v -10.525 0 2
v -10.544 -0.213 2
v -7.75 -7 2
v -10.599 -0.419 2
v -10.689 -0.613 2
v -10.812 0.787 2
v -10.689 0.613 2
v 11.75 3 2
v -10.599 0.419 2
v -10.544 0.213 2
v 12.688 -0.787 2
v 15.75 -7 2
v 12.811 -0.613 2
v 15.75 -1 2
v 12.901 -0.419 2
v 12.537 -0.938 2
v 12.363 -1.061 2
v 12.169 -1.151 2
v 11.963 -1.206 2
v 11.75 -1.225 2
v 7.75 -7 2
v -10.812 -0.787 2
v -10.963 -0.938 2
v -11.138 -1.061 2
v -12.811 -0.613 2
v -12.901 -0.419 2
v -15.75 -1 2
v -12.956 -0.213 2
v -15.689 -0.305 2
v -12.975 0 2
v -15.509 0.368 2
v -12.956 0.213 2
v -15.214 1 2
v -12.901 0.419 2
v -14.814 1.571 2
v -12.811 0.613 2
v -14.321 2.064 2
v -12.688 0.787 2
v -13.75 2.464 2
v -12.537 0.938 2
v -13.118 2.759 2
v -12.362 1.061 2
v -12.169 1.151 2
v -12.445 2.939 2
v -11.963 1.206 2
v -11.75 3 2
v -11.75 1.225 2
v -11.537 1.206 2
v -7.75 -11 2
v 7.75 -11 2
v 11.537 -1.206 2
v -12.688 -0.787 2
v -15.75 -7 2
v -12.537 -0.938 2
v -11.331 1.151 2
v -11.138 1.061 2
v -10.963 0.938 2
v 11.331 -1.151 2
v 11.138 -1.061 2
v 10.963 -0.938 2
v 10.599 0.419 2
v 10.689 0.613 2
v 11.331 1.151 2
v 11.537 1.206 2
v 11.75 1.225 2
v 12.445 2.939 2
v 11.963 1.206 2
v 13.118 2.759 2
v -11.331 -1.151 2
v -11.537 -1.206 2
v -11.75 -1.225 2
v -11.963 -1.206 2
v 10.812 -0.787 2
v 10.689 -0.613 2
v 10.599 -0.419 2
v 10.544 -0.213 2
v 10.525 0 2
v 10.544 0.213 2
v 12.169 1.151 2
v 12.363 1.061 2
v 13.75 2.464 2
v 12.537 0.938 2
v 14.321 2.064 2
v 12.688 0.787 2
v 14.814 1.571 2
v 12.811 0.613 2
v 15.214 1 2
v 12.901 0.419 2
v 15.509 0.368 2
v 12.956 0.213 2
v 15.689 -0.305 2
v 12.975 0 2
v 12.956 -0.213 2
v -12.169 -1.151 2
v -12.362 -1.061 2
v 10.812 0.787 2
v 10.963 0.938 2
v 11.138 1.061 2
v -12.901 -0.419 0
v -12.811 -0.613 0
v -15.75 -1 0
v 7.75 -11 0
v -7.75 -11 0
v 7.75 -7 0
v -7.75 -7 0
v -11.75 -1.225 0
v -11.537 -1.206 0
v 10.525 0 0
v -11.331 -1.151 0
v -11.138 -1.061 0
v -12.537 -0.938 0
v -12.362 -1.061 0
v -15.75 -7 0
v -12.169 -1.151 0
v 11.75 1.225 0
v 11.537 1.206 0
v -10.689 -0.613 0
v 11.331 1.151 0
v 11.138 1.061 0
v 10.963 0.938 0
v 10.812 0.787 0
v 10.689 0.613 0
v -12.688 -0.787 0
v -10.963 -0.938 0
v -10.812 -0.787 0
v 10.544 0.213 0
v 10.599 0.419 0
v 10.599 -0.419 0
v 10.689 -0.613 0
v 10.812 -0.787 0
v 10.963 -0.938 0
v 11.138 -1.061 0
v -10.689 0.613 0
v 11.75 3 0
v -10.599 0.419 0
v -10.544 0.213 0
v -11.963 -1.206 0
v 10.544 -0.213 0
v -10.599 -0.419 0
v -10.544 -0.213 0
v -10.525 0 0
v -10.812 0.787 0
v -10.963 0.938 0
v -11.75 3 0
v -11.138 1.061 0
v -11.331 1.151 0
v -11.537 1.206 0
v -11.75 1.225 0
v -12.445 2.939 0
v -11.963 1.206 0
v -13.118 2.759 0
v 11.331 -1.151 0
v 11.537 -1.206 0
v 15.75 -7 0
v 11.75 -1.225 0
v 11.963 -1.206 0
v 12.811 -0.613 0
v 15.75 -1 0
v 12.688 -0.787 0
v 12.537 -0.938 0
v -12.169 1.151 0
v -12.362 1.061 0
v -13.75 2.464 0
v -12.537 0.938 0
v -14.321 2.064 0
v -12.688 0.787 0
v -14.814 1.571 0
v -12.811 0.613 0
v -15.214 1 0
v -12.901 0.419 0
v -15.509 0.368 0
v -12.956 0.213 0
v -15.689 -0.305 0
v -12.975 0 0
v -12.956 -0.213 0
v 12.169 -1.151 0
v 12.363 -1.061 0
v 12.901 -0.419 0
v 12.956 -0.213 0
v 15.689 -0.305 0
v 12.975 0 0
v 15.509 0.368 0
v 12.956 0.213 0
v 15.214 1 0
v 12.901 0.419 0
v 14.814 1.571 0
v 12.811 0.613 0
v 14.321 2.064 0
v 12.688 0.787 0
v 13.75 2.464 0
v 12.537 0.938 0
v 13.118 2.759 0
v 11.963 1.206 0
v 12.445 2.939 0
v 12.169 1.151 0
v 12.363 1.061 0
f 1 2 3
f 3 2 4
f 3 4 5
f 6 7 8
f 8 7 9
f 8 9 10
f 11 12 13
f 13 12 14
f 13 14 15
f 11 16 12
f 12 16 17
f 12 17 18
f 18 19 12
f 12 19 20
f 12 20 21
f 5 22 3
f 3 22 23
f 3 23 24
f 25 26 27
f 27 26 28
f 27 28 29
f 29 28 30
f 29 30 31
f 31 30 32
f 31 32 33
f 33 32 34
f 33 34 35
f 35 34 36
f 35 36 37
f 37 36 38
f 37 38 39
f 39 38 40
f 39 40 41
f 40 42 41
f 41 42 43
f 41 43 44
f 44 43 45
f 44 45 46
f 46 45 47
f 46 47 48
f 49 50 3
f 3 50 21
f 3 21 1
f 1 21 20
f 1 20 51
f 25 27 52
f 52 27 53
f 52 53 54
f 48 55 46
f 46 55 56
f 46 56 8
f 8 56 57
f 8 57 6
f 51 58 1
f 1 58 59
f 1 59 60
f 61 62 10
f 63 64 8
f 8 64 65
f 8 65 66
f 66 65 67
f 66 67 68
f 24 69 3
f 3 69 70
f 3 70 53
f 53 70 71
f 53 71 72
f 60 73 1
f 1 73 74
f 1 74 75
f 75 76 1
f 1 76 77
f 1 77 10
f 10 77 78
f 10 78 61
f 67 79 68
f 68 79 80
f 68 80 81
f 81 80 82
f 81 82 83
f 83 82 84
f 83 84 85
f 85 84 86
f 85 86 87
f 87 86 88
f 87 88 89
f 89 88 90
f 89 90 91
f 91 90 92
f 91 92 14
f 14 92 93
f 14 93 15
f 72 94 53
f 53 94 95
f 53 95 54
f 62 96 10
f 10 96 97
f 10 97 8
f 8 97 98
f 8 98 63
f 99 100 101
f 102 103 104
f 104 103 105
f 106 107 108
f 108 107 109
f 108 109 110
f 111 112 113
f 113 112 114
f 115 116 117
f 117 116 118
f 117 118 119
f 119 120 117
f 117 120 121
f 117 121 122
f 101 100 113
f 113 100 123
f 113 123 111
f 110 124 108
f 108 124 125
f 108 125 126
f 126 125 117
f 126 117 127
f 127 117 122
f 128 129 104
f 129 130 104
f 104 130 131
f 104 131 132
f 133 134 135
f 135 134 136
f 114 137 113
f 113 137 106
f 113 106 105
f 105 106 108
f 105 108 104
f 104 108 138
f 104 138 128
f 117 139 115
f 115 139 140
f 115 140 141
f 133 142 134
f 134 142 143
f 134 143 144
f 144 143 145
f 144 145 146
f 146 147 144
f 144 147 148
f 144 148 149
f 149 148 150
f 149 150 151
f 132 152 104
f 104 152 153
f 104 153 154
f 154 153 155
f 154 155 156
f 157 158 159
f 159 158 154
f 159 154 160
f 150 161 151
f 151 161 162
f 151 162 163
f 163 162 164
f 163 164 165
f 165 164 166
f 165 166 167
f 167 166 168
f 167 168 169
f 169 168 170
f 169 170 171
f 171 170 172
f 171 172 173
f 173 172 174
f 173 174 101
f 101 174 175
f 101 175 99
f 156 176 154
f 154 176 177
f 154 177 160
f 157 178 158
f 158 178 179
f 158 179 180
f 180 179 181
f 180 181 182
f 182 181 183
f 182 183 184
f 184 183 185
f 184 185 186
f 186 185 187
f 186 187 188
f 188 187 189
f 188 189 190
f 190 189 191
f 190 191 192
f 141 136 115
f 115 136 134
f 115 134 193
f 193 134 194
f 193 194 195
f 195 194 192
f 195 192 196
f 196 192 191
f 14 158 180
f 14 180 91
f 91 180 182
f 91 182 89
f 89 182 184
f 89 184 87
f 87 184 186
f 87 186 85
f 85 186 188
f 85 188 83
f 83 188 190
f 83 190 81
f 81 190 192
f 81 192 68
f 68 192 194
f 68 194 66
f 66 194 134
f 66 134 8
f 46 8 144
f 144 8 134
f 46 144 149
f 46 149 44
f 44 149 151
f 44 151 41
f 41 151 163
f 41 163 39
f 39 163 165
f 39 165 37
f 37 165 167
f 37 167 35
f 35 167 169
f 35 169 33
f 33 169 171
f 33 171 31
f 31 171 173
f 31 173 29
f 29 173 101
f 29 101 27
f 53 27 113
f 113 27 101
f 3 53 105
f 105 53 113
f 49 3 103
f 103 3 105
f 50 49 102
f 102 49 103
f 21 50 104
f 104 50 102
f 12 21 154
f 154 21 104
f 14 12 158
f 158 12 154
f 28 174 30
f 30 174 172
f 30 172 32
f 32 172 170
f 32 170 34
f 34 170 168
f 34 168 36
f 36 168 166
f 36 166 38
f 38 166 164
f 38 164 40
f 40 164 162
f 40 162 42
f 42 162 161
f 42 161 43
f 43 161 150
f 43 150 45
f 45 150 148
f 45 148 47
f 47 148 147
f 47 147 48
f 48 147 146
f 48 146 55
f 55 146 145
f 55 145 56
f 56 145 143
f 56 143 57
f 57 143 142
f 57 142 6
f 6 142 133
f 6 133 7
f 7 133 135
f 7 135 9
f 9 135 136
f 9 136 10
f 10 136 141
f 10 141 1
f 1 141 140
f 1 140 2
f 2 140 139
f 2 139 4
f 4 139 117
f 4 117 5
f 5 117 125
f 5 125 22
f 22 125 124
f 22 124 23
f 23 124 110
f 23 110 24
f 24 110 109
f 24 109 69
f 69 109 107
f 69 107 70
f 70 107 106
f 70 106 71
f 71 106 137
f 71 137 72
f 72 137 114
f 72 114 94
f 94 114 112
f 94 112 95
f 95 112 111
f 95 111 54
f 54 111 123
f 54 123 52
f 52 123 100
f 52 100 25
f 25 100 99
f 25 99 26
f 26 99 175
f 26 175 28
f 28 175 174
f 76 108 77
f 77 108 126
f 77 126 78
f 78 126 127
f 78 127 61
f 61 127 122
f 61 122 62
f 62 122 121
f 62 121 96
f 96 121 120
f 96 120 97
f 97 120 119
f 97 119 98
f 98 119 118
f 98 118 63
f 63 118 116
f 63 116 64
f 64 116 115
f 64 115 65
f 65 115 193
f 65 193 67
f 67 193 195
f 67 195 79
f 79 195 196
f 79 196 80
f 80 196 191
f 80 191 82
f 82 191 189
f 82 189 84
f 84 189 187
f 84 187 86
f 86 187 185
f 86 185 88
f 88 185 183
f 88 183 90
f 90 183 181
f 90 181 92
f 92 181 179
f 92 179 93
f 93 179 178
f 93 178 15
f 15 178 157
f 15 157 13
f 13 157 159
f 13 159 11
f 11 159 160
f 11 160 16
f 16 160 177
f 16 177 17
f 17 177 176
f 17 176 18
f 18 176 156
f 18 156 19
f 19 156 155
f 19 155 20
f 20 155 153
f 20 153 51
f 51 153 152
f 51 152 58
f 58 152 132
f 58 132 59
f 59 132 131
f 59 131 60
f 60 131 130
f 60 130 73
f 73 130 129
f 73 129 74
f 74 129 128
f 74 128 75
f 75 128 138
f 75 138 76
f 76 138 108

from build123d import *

# Parameters (mm, degrees)
SKETCH1_R       = 1.225
MAIN_BODY_DEPTH = 2


with BuildPart() as part:
    # Sketch1 → Main Body (new body)
    with BuildSketch(Plane.XY):
        with BuildLine():
            Line((-15.75, -7), (-7.75, -7))
            Line((-7.75, -7), (-7.75, -11))
            Line((-7.75, -11), (7.75, -11))
            Line((7.75, -11), (7.75, -7))
            Line((7.75, -7), (15.75, -7))
            Line((15.75, -7), (15.75, -1))
            ThreePointArc((15.75, -1), (14.578427125, 1.828427125), (11.75, 3))
            Line((11.75, 3), (-11.75, 3))
            ThreePointArc((-11.75, 3), (-14.578427125, 1.828427125), (-15.75, -1))
            Line((-15.75, -1), (-15.75, -7))
        make_face()
        with Locations((-11.75, 0)):
            Circle(SKETCH1_R, mode=Mode.SUBTRACT)
        with Locations((11.75, 0)):
            Circle(SKETCH1_R, mode=Mode.SUBTRACT)
    extrude(amount=MAIN_BODY_DEPTH)


solid = part.part
